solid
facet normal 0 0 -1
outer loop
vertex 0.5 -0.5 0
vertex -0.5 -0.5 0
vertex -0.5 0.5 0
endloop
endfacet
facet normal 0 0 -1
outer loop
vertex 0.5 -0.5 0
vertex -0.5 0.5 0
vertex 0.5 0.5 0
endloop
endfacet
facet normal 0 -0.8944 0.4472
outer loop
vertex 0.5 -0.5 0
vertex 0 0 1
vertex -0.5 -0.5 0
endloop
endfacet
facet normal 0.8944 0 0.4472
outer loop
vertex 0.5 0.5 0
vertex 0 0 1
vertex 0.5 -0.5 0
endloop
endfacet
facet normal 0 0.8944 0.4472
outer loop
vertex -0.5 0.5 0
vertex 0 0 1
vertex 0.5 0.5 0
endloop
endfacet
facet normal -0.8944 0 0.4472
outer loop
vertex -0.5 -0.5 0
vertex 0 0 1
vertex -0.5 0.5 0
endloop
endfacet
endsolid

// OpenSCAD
// Square Pyramid for Basic Shapes
// by Slashee the Cow

$fn = 128;
linear_extrude(1, scale = 0)
    square(1, center = true);
